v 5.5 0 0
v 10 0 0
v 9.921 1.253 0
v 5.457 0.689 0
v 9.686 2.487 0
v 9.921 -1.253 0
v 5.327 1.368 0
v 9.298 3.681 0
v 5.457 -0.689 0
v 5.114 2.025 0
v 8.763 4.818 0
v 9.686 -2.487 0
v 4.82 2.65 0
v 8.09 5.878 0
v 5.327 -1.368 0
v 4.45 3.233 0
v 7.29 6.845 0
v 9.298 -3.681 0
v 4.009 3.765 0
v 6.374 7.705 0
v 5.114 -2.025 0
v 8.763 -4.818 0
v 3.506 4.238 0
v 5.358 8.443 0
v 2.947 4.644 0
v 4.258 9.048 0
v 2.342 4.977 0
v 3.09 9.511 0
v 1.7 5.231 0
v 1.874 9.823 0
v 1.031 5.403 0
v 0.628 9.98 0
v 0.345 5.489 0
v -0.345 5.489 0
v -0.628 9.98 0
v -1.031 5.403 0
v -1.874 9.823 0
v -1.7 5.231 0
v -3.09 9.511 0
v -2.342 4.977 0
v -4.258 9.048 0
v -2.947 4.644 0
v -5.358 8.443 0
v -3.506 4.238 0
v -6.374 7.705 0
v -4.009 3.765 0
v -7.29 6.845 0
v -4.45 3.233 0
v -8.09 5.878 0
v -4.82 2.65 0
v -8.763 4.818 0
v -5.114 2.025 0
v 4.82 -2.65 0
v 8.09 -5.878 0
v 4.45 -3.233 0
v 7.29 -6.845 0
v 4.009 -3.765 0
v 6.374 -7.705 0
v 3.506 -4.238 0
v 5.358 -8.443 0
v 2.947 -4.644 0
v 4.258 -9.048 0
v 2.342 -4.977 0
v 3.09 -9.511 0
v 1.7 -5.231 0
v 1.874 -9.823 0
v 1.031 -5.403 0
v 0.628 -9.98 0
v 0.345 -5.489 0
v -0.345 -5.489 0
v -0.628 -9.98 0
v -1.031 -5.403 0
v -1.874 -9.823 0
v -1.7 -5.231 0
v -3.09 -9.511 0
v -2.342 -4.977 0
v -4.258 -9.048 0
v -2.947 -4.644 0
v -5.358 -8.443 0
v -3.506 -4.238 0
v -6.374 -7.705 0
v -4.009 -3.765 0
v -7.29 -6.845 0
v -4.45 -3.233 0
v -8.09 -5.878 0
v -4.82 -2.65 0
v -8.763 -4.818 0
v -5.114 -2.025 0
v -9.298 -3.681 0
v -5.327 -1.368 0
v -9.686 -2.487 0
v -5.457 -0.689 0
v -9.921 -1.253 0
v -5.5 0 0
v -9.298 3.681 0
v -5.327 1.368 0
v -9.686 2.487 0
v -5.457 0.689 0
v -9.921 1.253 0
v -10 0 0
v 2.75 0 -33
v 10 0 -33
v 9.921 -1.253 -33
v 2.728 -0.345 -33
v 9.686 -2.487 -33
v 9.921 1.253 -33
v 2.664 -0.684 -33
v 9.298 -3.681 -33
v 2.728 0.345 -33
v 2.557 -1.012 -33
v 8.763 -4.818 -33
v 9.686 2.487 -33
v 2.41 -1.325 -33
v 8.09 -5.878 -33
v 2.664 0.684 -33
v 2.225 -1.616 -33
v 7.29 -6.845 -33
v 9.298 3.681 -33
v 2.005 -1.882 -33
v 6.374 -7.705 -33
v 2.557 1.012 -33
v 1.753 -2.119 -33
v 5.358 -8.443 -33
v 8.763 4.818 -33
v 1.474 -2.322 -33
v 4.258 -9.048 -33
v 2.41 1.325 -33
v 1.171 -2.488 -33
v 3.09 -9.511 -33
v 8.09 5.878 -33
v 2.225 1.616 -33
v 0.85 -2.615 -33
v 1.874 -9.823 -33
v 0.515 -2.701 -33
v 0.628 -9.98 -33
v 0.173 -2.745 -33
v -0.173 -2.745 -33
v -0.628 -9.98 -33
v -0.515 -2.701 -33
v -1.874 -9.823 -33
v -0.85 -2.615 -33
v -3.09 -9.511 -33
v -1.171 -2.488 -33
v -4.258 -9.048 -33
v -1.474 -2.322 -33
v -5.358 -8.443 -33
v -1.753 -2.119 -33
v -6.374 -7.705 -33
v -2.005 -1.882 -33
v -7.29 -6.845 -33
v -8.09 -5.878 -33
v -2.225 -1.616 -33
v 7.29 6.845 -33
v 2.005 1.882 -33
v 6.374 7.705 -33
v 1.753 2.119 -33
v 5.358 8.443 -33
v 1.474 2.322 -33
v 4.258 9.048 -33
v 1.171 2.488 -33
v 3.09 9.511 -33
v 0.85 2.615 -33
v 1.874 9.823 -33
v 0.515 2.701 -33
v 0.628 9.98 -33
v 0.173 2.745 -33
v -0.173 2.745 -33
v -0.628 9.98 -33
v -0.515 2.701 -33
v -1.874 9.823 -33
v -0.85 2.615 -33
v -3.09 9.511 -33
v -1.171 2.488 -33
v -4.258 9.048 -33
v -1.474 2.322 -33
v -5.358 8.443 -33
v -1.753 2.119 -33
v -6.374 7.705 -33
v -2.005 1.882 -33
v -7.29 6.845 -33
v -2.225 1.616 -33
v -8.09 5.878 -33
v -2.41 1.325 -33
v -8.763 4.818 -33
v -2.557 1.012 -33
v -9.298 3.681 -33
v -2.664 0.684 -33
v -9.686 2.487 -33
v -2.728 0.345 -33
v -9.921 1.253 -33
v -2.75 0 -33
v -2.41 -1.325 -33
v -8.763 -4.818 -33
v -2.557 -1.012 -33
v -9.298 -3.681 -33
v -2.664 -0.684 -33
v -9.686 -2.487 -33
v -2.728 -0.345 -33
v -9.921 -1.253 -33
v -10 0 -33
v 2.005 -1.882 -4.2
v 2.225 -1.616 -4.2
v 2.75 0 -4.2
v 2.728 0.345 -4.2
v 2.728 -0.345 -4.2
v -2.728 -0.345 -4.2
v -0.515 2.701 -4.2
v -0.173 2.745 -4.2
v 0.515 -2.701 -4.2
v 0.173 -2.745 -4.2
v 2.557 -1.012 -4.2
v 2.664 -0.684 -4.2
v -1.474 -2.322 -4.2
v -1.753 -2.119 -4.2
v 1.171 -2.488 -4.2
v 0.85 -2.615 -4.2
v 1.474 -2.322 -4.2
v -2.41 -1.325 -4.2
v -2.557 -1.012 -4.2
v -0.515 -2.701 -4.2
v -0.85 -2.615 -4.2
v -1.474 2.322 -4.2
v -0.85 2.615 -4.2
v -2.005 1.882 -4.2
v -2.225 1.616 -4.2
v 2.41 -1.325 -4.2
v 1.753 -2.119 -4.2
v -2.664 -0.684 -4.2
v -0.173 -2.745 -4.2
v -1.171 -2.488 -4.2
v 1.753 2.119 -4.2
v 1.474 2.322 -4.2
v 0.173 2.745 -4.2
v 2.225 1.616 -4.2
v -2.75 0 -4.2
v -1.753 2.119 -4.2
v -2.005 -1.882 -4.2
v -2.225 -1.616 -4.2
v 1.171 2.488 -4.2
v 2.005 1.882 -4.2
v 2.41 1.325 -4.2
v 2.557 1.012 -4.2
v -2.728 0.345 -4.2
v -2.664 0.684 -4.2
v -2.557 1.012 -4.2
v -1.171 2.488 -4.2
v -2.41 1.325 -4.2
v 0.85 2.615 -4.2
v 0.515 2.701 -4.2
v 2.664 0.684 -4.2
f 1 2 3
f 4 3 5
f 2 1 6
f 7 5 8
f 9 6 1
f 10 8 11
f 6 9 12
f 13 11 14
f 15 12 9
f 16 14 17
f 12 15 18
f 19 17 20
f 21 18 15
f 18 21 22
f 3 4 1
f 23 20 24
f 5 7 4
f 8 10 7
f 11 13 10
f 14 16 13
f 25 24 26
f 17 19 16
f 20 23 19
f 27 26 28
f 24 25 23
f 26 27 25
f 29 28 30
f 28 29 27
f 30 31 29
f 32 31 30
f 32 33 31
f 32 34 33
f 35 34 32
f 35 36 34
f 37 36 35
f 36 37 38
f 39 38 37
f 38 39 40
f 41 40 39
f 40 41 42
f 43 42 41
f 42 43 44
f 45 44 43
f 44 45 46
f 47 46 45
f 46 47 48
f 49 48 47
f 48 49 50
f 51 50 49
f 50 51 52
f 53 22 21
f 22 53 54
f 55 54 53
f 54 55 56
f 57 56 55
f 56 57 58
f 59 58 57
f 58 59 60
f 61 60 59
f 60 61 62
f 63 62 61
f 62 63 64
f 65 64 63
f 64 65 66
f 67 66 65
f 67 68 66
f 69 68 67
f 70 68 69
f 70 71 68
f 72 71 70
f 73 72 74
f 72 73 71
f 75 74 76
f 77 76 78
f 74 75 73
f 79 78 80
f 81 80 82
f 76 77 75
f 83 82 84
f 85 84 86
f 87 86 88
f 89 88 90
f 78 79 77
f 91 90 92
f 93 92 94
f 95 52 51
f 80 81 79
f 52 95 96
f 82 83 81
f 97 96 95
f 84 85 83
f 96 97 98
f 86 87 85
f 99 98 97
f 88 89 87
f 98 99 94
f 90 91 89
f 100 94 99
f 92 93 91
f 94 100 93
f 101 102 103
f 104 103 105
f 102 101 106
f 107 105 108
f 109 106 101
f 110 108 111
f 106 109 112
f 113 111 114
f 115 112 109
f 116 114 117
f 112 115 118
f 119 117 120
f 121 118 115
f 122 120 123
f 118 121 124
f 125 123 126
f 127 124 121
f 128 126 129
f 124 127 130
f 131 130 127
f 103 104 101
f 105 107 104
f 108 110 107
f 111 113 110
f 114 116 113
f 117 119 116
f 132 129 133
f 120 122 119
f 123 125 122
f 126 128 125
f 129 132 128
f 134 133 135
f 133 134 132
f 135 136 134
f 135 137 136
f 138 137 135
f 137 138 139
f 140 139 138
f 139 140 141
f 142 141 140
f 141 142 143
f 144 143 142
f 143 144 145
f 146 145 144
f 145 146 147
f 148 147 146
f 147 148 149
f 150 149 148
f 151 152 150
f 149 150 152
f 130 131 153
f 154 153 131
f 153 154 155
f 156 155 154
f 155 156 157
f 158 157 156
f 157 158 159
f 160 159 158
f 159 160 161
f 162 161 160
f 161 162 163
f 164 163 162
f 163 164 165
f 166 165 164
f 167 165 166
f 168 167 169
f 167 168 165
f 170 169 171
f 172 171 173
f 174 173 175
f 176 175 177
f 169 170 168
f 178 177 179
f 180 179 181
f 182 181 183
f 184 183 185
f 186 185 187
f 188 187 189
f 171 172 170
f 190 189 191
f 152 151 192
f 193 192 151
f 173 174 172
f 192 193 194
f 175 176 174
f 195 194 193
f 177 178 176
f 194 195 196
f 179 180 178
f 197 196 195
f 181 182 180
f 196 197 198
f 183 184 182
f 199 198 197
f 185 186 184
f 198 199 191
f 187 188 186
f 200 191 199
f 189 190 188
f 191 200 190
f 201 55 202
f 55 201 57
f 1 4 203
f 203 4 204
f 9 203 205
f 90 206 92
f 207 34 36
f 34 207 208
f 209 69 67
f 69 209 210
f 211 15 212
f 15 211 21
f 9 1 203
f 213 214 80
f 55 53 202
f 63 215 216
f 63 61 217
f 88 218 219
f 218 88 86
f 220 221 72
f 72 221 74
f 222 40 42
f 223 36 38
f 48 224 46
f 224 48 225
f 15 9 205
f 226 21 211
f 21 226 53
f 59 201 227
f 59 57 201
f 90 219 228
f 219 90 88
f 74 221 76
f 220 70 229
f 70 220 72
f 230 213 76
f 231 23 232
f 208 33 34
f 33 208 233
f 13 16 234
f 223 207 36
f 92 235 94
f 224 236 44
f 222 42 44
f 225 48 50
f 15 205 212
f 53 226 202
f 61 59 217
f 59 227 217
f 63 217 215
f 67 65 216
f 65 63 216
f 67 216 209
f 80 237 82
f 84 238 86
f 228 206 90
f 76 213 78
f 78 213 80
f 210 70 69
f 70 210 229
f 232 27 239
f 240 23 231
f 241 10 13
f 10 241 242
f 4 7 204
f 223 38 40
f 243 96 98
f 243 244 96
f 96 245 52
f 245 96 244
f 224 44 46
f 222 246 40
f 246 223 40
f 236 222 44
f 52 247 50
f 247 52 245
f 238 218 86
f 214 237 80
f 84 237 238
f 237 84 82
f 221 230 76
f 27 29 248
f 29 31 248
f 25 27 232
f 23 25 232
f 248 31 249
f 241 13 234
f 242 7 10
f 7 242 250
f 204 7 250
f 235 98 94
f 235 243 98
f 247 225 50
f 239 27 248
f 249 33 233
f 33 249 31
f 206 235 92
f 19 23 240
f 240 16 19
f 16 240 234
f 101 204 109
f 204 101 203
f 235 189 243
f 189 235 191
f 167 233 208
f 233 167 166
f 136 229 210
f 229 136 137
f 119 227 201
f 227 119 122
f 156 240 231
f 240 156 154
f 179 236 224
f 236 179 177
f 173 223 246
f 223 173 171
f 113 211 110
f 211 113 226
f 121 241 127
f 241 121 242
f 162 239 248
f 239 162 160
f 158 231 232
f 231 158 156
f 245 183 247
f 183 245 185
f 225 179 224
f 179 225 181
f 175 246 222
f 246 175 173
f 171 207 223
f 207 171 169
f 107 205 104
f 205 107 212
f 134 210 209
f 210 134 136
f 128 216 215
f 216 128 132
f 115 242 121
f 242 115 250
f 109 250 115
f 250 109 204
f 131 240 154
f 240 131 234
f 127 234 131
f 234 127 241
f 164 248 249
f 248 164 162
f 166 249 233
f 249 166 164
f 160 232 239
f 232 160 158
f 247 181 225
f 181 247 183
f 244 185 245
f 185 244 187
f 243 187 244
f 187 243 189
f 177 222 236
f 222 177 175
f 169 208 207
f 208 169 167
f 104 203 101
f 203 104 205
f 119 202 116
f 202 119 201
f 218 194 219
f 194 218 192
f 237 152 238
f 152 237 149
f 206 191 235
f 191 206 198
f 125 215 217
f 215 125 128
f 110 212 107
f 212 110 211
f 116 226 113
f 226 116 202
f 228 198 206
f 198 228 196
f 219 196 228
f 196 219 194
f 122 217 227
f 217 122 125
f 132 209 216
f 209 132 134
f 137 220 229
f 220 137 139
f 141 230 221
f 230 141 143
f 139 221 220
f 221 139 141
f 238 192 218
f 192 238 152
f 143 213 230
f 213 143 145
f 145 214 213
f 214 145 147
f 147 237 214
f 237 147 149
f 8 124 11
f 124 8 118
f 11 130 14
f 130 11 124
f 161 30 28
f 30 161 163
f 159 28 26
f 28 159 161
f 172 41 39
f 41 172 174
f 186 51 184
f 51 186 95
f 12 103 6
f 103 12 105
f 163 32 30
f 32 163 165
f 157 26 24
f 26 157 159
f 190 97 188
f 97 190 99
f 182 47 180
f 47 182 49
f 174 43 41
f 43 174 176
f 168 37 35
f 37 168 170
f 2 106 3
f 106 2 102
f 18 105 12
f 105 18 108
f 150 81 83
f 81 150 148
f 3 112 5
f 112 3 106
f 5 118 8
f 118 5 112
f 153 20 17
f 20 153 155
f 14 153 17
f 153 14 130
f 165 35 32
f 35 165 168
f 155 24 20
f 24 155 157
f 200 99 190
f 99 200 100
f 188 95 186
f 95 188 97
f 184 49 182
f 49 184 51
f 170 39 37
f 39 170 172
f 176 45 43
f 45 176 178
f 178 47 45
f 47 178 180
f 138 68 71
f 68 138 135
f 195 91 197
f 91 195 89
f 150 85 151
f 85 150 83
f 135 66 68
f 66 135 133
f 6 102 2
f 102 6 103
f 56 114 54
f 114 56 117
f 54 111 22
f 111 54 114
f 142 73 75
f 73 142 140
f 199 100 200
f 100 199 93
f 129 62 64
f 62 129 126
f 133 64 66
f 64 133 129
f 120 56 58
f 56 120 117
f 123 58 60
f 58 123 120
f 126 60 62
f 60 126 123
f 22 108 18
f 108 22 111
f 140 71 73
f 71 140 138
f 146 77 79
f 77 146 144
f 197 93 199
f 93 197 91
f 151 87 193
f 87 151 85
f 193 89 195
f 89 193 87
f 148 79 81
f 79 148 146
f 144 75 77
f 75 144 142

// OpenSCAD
$fn = 50;


difference() {
	union() {
		translate(v = [0, 0, -33.0000000000]) {
			cylinder(h = 33, r = 10.0000000000);
		}
		cylinder(h = 0, r = 13.0000000000);
	}
	union() {
		translate(v = [0, 0, 0]) {
			rotate(a = [0, 0, 0]) {
				difference() {
					union() {
						#translate(v = [0, 0, -33.0000000000]) {
							cylinder(h = 33, r = 2.2500000000);
						}
						#translate(v = [0, 0, -4.2000000000]) {
							cylinder(h = 4.2000000000, r = 10.0000000000, r1 = 2.7500000000, r2 = 5.5000000000);
						}
						#translate(v = [0, 0, -33.0000000000]) {
							cylinder(h = 33, r = 2.7500000000);
						}
						#translate(v = [0, 0, -33.0000000000]) {
							cylinder(h = 33, r = 2.2500000000);
						}
					}
					union();
				}
			}
		}
	}
}
